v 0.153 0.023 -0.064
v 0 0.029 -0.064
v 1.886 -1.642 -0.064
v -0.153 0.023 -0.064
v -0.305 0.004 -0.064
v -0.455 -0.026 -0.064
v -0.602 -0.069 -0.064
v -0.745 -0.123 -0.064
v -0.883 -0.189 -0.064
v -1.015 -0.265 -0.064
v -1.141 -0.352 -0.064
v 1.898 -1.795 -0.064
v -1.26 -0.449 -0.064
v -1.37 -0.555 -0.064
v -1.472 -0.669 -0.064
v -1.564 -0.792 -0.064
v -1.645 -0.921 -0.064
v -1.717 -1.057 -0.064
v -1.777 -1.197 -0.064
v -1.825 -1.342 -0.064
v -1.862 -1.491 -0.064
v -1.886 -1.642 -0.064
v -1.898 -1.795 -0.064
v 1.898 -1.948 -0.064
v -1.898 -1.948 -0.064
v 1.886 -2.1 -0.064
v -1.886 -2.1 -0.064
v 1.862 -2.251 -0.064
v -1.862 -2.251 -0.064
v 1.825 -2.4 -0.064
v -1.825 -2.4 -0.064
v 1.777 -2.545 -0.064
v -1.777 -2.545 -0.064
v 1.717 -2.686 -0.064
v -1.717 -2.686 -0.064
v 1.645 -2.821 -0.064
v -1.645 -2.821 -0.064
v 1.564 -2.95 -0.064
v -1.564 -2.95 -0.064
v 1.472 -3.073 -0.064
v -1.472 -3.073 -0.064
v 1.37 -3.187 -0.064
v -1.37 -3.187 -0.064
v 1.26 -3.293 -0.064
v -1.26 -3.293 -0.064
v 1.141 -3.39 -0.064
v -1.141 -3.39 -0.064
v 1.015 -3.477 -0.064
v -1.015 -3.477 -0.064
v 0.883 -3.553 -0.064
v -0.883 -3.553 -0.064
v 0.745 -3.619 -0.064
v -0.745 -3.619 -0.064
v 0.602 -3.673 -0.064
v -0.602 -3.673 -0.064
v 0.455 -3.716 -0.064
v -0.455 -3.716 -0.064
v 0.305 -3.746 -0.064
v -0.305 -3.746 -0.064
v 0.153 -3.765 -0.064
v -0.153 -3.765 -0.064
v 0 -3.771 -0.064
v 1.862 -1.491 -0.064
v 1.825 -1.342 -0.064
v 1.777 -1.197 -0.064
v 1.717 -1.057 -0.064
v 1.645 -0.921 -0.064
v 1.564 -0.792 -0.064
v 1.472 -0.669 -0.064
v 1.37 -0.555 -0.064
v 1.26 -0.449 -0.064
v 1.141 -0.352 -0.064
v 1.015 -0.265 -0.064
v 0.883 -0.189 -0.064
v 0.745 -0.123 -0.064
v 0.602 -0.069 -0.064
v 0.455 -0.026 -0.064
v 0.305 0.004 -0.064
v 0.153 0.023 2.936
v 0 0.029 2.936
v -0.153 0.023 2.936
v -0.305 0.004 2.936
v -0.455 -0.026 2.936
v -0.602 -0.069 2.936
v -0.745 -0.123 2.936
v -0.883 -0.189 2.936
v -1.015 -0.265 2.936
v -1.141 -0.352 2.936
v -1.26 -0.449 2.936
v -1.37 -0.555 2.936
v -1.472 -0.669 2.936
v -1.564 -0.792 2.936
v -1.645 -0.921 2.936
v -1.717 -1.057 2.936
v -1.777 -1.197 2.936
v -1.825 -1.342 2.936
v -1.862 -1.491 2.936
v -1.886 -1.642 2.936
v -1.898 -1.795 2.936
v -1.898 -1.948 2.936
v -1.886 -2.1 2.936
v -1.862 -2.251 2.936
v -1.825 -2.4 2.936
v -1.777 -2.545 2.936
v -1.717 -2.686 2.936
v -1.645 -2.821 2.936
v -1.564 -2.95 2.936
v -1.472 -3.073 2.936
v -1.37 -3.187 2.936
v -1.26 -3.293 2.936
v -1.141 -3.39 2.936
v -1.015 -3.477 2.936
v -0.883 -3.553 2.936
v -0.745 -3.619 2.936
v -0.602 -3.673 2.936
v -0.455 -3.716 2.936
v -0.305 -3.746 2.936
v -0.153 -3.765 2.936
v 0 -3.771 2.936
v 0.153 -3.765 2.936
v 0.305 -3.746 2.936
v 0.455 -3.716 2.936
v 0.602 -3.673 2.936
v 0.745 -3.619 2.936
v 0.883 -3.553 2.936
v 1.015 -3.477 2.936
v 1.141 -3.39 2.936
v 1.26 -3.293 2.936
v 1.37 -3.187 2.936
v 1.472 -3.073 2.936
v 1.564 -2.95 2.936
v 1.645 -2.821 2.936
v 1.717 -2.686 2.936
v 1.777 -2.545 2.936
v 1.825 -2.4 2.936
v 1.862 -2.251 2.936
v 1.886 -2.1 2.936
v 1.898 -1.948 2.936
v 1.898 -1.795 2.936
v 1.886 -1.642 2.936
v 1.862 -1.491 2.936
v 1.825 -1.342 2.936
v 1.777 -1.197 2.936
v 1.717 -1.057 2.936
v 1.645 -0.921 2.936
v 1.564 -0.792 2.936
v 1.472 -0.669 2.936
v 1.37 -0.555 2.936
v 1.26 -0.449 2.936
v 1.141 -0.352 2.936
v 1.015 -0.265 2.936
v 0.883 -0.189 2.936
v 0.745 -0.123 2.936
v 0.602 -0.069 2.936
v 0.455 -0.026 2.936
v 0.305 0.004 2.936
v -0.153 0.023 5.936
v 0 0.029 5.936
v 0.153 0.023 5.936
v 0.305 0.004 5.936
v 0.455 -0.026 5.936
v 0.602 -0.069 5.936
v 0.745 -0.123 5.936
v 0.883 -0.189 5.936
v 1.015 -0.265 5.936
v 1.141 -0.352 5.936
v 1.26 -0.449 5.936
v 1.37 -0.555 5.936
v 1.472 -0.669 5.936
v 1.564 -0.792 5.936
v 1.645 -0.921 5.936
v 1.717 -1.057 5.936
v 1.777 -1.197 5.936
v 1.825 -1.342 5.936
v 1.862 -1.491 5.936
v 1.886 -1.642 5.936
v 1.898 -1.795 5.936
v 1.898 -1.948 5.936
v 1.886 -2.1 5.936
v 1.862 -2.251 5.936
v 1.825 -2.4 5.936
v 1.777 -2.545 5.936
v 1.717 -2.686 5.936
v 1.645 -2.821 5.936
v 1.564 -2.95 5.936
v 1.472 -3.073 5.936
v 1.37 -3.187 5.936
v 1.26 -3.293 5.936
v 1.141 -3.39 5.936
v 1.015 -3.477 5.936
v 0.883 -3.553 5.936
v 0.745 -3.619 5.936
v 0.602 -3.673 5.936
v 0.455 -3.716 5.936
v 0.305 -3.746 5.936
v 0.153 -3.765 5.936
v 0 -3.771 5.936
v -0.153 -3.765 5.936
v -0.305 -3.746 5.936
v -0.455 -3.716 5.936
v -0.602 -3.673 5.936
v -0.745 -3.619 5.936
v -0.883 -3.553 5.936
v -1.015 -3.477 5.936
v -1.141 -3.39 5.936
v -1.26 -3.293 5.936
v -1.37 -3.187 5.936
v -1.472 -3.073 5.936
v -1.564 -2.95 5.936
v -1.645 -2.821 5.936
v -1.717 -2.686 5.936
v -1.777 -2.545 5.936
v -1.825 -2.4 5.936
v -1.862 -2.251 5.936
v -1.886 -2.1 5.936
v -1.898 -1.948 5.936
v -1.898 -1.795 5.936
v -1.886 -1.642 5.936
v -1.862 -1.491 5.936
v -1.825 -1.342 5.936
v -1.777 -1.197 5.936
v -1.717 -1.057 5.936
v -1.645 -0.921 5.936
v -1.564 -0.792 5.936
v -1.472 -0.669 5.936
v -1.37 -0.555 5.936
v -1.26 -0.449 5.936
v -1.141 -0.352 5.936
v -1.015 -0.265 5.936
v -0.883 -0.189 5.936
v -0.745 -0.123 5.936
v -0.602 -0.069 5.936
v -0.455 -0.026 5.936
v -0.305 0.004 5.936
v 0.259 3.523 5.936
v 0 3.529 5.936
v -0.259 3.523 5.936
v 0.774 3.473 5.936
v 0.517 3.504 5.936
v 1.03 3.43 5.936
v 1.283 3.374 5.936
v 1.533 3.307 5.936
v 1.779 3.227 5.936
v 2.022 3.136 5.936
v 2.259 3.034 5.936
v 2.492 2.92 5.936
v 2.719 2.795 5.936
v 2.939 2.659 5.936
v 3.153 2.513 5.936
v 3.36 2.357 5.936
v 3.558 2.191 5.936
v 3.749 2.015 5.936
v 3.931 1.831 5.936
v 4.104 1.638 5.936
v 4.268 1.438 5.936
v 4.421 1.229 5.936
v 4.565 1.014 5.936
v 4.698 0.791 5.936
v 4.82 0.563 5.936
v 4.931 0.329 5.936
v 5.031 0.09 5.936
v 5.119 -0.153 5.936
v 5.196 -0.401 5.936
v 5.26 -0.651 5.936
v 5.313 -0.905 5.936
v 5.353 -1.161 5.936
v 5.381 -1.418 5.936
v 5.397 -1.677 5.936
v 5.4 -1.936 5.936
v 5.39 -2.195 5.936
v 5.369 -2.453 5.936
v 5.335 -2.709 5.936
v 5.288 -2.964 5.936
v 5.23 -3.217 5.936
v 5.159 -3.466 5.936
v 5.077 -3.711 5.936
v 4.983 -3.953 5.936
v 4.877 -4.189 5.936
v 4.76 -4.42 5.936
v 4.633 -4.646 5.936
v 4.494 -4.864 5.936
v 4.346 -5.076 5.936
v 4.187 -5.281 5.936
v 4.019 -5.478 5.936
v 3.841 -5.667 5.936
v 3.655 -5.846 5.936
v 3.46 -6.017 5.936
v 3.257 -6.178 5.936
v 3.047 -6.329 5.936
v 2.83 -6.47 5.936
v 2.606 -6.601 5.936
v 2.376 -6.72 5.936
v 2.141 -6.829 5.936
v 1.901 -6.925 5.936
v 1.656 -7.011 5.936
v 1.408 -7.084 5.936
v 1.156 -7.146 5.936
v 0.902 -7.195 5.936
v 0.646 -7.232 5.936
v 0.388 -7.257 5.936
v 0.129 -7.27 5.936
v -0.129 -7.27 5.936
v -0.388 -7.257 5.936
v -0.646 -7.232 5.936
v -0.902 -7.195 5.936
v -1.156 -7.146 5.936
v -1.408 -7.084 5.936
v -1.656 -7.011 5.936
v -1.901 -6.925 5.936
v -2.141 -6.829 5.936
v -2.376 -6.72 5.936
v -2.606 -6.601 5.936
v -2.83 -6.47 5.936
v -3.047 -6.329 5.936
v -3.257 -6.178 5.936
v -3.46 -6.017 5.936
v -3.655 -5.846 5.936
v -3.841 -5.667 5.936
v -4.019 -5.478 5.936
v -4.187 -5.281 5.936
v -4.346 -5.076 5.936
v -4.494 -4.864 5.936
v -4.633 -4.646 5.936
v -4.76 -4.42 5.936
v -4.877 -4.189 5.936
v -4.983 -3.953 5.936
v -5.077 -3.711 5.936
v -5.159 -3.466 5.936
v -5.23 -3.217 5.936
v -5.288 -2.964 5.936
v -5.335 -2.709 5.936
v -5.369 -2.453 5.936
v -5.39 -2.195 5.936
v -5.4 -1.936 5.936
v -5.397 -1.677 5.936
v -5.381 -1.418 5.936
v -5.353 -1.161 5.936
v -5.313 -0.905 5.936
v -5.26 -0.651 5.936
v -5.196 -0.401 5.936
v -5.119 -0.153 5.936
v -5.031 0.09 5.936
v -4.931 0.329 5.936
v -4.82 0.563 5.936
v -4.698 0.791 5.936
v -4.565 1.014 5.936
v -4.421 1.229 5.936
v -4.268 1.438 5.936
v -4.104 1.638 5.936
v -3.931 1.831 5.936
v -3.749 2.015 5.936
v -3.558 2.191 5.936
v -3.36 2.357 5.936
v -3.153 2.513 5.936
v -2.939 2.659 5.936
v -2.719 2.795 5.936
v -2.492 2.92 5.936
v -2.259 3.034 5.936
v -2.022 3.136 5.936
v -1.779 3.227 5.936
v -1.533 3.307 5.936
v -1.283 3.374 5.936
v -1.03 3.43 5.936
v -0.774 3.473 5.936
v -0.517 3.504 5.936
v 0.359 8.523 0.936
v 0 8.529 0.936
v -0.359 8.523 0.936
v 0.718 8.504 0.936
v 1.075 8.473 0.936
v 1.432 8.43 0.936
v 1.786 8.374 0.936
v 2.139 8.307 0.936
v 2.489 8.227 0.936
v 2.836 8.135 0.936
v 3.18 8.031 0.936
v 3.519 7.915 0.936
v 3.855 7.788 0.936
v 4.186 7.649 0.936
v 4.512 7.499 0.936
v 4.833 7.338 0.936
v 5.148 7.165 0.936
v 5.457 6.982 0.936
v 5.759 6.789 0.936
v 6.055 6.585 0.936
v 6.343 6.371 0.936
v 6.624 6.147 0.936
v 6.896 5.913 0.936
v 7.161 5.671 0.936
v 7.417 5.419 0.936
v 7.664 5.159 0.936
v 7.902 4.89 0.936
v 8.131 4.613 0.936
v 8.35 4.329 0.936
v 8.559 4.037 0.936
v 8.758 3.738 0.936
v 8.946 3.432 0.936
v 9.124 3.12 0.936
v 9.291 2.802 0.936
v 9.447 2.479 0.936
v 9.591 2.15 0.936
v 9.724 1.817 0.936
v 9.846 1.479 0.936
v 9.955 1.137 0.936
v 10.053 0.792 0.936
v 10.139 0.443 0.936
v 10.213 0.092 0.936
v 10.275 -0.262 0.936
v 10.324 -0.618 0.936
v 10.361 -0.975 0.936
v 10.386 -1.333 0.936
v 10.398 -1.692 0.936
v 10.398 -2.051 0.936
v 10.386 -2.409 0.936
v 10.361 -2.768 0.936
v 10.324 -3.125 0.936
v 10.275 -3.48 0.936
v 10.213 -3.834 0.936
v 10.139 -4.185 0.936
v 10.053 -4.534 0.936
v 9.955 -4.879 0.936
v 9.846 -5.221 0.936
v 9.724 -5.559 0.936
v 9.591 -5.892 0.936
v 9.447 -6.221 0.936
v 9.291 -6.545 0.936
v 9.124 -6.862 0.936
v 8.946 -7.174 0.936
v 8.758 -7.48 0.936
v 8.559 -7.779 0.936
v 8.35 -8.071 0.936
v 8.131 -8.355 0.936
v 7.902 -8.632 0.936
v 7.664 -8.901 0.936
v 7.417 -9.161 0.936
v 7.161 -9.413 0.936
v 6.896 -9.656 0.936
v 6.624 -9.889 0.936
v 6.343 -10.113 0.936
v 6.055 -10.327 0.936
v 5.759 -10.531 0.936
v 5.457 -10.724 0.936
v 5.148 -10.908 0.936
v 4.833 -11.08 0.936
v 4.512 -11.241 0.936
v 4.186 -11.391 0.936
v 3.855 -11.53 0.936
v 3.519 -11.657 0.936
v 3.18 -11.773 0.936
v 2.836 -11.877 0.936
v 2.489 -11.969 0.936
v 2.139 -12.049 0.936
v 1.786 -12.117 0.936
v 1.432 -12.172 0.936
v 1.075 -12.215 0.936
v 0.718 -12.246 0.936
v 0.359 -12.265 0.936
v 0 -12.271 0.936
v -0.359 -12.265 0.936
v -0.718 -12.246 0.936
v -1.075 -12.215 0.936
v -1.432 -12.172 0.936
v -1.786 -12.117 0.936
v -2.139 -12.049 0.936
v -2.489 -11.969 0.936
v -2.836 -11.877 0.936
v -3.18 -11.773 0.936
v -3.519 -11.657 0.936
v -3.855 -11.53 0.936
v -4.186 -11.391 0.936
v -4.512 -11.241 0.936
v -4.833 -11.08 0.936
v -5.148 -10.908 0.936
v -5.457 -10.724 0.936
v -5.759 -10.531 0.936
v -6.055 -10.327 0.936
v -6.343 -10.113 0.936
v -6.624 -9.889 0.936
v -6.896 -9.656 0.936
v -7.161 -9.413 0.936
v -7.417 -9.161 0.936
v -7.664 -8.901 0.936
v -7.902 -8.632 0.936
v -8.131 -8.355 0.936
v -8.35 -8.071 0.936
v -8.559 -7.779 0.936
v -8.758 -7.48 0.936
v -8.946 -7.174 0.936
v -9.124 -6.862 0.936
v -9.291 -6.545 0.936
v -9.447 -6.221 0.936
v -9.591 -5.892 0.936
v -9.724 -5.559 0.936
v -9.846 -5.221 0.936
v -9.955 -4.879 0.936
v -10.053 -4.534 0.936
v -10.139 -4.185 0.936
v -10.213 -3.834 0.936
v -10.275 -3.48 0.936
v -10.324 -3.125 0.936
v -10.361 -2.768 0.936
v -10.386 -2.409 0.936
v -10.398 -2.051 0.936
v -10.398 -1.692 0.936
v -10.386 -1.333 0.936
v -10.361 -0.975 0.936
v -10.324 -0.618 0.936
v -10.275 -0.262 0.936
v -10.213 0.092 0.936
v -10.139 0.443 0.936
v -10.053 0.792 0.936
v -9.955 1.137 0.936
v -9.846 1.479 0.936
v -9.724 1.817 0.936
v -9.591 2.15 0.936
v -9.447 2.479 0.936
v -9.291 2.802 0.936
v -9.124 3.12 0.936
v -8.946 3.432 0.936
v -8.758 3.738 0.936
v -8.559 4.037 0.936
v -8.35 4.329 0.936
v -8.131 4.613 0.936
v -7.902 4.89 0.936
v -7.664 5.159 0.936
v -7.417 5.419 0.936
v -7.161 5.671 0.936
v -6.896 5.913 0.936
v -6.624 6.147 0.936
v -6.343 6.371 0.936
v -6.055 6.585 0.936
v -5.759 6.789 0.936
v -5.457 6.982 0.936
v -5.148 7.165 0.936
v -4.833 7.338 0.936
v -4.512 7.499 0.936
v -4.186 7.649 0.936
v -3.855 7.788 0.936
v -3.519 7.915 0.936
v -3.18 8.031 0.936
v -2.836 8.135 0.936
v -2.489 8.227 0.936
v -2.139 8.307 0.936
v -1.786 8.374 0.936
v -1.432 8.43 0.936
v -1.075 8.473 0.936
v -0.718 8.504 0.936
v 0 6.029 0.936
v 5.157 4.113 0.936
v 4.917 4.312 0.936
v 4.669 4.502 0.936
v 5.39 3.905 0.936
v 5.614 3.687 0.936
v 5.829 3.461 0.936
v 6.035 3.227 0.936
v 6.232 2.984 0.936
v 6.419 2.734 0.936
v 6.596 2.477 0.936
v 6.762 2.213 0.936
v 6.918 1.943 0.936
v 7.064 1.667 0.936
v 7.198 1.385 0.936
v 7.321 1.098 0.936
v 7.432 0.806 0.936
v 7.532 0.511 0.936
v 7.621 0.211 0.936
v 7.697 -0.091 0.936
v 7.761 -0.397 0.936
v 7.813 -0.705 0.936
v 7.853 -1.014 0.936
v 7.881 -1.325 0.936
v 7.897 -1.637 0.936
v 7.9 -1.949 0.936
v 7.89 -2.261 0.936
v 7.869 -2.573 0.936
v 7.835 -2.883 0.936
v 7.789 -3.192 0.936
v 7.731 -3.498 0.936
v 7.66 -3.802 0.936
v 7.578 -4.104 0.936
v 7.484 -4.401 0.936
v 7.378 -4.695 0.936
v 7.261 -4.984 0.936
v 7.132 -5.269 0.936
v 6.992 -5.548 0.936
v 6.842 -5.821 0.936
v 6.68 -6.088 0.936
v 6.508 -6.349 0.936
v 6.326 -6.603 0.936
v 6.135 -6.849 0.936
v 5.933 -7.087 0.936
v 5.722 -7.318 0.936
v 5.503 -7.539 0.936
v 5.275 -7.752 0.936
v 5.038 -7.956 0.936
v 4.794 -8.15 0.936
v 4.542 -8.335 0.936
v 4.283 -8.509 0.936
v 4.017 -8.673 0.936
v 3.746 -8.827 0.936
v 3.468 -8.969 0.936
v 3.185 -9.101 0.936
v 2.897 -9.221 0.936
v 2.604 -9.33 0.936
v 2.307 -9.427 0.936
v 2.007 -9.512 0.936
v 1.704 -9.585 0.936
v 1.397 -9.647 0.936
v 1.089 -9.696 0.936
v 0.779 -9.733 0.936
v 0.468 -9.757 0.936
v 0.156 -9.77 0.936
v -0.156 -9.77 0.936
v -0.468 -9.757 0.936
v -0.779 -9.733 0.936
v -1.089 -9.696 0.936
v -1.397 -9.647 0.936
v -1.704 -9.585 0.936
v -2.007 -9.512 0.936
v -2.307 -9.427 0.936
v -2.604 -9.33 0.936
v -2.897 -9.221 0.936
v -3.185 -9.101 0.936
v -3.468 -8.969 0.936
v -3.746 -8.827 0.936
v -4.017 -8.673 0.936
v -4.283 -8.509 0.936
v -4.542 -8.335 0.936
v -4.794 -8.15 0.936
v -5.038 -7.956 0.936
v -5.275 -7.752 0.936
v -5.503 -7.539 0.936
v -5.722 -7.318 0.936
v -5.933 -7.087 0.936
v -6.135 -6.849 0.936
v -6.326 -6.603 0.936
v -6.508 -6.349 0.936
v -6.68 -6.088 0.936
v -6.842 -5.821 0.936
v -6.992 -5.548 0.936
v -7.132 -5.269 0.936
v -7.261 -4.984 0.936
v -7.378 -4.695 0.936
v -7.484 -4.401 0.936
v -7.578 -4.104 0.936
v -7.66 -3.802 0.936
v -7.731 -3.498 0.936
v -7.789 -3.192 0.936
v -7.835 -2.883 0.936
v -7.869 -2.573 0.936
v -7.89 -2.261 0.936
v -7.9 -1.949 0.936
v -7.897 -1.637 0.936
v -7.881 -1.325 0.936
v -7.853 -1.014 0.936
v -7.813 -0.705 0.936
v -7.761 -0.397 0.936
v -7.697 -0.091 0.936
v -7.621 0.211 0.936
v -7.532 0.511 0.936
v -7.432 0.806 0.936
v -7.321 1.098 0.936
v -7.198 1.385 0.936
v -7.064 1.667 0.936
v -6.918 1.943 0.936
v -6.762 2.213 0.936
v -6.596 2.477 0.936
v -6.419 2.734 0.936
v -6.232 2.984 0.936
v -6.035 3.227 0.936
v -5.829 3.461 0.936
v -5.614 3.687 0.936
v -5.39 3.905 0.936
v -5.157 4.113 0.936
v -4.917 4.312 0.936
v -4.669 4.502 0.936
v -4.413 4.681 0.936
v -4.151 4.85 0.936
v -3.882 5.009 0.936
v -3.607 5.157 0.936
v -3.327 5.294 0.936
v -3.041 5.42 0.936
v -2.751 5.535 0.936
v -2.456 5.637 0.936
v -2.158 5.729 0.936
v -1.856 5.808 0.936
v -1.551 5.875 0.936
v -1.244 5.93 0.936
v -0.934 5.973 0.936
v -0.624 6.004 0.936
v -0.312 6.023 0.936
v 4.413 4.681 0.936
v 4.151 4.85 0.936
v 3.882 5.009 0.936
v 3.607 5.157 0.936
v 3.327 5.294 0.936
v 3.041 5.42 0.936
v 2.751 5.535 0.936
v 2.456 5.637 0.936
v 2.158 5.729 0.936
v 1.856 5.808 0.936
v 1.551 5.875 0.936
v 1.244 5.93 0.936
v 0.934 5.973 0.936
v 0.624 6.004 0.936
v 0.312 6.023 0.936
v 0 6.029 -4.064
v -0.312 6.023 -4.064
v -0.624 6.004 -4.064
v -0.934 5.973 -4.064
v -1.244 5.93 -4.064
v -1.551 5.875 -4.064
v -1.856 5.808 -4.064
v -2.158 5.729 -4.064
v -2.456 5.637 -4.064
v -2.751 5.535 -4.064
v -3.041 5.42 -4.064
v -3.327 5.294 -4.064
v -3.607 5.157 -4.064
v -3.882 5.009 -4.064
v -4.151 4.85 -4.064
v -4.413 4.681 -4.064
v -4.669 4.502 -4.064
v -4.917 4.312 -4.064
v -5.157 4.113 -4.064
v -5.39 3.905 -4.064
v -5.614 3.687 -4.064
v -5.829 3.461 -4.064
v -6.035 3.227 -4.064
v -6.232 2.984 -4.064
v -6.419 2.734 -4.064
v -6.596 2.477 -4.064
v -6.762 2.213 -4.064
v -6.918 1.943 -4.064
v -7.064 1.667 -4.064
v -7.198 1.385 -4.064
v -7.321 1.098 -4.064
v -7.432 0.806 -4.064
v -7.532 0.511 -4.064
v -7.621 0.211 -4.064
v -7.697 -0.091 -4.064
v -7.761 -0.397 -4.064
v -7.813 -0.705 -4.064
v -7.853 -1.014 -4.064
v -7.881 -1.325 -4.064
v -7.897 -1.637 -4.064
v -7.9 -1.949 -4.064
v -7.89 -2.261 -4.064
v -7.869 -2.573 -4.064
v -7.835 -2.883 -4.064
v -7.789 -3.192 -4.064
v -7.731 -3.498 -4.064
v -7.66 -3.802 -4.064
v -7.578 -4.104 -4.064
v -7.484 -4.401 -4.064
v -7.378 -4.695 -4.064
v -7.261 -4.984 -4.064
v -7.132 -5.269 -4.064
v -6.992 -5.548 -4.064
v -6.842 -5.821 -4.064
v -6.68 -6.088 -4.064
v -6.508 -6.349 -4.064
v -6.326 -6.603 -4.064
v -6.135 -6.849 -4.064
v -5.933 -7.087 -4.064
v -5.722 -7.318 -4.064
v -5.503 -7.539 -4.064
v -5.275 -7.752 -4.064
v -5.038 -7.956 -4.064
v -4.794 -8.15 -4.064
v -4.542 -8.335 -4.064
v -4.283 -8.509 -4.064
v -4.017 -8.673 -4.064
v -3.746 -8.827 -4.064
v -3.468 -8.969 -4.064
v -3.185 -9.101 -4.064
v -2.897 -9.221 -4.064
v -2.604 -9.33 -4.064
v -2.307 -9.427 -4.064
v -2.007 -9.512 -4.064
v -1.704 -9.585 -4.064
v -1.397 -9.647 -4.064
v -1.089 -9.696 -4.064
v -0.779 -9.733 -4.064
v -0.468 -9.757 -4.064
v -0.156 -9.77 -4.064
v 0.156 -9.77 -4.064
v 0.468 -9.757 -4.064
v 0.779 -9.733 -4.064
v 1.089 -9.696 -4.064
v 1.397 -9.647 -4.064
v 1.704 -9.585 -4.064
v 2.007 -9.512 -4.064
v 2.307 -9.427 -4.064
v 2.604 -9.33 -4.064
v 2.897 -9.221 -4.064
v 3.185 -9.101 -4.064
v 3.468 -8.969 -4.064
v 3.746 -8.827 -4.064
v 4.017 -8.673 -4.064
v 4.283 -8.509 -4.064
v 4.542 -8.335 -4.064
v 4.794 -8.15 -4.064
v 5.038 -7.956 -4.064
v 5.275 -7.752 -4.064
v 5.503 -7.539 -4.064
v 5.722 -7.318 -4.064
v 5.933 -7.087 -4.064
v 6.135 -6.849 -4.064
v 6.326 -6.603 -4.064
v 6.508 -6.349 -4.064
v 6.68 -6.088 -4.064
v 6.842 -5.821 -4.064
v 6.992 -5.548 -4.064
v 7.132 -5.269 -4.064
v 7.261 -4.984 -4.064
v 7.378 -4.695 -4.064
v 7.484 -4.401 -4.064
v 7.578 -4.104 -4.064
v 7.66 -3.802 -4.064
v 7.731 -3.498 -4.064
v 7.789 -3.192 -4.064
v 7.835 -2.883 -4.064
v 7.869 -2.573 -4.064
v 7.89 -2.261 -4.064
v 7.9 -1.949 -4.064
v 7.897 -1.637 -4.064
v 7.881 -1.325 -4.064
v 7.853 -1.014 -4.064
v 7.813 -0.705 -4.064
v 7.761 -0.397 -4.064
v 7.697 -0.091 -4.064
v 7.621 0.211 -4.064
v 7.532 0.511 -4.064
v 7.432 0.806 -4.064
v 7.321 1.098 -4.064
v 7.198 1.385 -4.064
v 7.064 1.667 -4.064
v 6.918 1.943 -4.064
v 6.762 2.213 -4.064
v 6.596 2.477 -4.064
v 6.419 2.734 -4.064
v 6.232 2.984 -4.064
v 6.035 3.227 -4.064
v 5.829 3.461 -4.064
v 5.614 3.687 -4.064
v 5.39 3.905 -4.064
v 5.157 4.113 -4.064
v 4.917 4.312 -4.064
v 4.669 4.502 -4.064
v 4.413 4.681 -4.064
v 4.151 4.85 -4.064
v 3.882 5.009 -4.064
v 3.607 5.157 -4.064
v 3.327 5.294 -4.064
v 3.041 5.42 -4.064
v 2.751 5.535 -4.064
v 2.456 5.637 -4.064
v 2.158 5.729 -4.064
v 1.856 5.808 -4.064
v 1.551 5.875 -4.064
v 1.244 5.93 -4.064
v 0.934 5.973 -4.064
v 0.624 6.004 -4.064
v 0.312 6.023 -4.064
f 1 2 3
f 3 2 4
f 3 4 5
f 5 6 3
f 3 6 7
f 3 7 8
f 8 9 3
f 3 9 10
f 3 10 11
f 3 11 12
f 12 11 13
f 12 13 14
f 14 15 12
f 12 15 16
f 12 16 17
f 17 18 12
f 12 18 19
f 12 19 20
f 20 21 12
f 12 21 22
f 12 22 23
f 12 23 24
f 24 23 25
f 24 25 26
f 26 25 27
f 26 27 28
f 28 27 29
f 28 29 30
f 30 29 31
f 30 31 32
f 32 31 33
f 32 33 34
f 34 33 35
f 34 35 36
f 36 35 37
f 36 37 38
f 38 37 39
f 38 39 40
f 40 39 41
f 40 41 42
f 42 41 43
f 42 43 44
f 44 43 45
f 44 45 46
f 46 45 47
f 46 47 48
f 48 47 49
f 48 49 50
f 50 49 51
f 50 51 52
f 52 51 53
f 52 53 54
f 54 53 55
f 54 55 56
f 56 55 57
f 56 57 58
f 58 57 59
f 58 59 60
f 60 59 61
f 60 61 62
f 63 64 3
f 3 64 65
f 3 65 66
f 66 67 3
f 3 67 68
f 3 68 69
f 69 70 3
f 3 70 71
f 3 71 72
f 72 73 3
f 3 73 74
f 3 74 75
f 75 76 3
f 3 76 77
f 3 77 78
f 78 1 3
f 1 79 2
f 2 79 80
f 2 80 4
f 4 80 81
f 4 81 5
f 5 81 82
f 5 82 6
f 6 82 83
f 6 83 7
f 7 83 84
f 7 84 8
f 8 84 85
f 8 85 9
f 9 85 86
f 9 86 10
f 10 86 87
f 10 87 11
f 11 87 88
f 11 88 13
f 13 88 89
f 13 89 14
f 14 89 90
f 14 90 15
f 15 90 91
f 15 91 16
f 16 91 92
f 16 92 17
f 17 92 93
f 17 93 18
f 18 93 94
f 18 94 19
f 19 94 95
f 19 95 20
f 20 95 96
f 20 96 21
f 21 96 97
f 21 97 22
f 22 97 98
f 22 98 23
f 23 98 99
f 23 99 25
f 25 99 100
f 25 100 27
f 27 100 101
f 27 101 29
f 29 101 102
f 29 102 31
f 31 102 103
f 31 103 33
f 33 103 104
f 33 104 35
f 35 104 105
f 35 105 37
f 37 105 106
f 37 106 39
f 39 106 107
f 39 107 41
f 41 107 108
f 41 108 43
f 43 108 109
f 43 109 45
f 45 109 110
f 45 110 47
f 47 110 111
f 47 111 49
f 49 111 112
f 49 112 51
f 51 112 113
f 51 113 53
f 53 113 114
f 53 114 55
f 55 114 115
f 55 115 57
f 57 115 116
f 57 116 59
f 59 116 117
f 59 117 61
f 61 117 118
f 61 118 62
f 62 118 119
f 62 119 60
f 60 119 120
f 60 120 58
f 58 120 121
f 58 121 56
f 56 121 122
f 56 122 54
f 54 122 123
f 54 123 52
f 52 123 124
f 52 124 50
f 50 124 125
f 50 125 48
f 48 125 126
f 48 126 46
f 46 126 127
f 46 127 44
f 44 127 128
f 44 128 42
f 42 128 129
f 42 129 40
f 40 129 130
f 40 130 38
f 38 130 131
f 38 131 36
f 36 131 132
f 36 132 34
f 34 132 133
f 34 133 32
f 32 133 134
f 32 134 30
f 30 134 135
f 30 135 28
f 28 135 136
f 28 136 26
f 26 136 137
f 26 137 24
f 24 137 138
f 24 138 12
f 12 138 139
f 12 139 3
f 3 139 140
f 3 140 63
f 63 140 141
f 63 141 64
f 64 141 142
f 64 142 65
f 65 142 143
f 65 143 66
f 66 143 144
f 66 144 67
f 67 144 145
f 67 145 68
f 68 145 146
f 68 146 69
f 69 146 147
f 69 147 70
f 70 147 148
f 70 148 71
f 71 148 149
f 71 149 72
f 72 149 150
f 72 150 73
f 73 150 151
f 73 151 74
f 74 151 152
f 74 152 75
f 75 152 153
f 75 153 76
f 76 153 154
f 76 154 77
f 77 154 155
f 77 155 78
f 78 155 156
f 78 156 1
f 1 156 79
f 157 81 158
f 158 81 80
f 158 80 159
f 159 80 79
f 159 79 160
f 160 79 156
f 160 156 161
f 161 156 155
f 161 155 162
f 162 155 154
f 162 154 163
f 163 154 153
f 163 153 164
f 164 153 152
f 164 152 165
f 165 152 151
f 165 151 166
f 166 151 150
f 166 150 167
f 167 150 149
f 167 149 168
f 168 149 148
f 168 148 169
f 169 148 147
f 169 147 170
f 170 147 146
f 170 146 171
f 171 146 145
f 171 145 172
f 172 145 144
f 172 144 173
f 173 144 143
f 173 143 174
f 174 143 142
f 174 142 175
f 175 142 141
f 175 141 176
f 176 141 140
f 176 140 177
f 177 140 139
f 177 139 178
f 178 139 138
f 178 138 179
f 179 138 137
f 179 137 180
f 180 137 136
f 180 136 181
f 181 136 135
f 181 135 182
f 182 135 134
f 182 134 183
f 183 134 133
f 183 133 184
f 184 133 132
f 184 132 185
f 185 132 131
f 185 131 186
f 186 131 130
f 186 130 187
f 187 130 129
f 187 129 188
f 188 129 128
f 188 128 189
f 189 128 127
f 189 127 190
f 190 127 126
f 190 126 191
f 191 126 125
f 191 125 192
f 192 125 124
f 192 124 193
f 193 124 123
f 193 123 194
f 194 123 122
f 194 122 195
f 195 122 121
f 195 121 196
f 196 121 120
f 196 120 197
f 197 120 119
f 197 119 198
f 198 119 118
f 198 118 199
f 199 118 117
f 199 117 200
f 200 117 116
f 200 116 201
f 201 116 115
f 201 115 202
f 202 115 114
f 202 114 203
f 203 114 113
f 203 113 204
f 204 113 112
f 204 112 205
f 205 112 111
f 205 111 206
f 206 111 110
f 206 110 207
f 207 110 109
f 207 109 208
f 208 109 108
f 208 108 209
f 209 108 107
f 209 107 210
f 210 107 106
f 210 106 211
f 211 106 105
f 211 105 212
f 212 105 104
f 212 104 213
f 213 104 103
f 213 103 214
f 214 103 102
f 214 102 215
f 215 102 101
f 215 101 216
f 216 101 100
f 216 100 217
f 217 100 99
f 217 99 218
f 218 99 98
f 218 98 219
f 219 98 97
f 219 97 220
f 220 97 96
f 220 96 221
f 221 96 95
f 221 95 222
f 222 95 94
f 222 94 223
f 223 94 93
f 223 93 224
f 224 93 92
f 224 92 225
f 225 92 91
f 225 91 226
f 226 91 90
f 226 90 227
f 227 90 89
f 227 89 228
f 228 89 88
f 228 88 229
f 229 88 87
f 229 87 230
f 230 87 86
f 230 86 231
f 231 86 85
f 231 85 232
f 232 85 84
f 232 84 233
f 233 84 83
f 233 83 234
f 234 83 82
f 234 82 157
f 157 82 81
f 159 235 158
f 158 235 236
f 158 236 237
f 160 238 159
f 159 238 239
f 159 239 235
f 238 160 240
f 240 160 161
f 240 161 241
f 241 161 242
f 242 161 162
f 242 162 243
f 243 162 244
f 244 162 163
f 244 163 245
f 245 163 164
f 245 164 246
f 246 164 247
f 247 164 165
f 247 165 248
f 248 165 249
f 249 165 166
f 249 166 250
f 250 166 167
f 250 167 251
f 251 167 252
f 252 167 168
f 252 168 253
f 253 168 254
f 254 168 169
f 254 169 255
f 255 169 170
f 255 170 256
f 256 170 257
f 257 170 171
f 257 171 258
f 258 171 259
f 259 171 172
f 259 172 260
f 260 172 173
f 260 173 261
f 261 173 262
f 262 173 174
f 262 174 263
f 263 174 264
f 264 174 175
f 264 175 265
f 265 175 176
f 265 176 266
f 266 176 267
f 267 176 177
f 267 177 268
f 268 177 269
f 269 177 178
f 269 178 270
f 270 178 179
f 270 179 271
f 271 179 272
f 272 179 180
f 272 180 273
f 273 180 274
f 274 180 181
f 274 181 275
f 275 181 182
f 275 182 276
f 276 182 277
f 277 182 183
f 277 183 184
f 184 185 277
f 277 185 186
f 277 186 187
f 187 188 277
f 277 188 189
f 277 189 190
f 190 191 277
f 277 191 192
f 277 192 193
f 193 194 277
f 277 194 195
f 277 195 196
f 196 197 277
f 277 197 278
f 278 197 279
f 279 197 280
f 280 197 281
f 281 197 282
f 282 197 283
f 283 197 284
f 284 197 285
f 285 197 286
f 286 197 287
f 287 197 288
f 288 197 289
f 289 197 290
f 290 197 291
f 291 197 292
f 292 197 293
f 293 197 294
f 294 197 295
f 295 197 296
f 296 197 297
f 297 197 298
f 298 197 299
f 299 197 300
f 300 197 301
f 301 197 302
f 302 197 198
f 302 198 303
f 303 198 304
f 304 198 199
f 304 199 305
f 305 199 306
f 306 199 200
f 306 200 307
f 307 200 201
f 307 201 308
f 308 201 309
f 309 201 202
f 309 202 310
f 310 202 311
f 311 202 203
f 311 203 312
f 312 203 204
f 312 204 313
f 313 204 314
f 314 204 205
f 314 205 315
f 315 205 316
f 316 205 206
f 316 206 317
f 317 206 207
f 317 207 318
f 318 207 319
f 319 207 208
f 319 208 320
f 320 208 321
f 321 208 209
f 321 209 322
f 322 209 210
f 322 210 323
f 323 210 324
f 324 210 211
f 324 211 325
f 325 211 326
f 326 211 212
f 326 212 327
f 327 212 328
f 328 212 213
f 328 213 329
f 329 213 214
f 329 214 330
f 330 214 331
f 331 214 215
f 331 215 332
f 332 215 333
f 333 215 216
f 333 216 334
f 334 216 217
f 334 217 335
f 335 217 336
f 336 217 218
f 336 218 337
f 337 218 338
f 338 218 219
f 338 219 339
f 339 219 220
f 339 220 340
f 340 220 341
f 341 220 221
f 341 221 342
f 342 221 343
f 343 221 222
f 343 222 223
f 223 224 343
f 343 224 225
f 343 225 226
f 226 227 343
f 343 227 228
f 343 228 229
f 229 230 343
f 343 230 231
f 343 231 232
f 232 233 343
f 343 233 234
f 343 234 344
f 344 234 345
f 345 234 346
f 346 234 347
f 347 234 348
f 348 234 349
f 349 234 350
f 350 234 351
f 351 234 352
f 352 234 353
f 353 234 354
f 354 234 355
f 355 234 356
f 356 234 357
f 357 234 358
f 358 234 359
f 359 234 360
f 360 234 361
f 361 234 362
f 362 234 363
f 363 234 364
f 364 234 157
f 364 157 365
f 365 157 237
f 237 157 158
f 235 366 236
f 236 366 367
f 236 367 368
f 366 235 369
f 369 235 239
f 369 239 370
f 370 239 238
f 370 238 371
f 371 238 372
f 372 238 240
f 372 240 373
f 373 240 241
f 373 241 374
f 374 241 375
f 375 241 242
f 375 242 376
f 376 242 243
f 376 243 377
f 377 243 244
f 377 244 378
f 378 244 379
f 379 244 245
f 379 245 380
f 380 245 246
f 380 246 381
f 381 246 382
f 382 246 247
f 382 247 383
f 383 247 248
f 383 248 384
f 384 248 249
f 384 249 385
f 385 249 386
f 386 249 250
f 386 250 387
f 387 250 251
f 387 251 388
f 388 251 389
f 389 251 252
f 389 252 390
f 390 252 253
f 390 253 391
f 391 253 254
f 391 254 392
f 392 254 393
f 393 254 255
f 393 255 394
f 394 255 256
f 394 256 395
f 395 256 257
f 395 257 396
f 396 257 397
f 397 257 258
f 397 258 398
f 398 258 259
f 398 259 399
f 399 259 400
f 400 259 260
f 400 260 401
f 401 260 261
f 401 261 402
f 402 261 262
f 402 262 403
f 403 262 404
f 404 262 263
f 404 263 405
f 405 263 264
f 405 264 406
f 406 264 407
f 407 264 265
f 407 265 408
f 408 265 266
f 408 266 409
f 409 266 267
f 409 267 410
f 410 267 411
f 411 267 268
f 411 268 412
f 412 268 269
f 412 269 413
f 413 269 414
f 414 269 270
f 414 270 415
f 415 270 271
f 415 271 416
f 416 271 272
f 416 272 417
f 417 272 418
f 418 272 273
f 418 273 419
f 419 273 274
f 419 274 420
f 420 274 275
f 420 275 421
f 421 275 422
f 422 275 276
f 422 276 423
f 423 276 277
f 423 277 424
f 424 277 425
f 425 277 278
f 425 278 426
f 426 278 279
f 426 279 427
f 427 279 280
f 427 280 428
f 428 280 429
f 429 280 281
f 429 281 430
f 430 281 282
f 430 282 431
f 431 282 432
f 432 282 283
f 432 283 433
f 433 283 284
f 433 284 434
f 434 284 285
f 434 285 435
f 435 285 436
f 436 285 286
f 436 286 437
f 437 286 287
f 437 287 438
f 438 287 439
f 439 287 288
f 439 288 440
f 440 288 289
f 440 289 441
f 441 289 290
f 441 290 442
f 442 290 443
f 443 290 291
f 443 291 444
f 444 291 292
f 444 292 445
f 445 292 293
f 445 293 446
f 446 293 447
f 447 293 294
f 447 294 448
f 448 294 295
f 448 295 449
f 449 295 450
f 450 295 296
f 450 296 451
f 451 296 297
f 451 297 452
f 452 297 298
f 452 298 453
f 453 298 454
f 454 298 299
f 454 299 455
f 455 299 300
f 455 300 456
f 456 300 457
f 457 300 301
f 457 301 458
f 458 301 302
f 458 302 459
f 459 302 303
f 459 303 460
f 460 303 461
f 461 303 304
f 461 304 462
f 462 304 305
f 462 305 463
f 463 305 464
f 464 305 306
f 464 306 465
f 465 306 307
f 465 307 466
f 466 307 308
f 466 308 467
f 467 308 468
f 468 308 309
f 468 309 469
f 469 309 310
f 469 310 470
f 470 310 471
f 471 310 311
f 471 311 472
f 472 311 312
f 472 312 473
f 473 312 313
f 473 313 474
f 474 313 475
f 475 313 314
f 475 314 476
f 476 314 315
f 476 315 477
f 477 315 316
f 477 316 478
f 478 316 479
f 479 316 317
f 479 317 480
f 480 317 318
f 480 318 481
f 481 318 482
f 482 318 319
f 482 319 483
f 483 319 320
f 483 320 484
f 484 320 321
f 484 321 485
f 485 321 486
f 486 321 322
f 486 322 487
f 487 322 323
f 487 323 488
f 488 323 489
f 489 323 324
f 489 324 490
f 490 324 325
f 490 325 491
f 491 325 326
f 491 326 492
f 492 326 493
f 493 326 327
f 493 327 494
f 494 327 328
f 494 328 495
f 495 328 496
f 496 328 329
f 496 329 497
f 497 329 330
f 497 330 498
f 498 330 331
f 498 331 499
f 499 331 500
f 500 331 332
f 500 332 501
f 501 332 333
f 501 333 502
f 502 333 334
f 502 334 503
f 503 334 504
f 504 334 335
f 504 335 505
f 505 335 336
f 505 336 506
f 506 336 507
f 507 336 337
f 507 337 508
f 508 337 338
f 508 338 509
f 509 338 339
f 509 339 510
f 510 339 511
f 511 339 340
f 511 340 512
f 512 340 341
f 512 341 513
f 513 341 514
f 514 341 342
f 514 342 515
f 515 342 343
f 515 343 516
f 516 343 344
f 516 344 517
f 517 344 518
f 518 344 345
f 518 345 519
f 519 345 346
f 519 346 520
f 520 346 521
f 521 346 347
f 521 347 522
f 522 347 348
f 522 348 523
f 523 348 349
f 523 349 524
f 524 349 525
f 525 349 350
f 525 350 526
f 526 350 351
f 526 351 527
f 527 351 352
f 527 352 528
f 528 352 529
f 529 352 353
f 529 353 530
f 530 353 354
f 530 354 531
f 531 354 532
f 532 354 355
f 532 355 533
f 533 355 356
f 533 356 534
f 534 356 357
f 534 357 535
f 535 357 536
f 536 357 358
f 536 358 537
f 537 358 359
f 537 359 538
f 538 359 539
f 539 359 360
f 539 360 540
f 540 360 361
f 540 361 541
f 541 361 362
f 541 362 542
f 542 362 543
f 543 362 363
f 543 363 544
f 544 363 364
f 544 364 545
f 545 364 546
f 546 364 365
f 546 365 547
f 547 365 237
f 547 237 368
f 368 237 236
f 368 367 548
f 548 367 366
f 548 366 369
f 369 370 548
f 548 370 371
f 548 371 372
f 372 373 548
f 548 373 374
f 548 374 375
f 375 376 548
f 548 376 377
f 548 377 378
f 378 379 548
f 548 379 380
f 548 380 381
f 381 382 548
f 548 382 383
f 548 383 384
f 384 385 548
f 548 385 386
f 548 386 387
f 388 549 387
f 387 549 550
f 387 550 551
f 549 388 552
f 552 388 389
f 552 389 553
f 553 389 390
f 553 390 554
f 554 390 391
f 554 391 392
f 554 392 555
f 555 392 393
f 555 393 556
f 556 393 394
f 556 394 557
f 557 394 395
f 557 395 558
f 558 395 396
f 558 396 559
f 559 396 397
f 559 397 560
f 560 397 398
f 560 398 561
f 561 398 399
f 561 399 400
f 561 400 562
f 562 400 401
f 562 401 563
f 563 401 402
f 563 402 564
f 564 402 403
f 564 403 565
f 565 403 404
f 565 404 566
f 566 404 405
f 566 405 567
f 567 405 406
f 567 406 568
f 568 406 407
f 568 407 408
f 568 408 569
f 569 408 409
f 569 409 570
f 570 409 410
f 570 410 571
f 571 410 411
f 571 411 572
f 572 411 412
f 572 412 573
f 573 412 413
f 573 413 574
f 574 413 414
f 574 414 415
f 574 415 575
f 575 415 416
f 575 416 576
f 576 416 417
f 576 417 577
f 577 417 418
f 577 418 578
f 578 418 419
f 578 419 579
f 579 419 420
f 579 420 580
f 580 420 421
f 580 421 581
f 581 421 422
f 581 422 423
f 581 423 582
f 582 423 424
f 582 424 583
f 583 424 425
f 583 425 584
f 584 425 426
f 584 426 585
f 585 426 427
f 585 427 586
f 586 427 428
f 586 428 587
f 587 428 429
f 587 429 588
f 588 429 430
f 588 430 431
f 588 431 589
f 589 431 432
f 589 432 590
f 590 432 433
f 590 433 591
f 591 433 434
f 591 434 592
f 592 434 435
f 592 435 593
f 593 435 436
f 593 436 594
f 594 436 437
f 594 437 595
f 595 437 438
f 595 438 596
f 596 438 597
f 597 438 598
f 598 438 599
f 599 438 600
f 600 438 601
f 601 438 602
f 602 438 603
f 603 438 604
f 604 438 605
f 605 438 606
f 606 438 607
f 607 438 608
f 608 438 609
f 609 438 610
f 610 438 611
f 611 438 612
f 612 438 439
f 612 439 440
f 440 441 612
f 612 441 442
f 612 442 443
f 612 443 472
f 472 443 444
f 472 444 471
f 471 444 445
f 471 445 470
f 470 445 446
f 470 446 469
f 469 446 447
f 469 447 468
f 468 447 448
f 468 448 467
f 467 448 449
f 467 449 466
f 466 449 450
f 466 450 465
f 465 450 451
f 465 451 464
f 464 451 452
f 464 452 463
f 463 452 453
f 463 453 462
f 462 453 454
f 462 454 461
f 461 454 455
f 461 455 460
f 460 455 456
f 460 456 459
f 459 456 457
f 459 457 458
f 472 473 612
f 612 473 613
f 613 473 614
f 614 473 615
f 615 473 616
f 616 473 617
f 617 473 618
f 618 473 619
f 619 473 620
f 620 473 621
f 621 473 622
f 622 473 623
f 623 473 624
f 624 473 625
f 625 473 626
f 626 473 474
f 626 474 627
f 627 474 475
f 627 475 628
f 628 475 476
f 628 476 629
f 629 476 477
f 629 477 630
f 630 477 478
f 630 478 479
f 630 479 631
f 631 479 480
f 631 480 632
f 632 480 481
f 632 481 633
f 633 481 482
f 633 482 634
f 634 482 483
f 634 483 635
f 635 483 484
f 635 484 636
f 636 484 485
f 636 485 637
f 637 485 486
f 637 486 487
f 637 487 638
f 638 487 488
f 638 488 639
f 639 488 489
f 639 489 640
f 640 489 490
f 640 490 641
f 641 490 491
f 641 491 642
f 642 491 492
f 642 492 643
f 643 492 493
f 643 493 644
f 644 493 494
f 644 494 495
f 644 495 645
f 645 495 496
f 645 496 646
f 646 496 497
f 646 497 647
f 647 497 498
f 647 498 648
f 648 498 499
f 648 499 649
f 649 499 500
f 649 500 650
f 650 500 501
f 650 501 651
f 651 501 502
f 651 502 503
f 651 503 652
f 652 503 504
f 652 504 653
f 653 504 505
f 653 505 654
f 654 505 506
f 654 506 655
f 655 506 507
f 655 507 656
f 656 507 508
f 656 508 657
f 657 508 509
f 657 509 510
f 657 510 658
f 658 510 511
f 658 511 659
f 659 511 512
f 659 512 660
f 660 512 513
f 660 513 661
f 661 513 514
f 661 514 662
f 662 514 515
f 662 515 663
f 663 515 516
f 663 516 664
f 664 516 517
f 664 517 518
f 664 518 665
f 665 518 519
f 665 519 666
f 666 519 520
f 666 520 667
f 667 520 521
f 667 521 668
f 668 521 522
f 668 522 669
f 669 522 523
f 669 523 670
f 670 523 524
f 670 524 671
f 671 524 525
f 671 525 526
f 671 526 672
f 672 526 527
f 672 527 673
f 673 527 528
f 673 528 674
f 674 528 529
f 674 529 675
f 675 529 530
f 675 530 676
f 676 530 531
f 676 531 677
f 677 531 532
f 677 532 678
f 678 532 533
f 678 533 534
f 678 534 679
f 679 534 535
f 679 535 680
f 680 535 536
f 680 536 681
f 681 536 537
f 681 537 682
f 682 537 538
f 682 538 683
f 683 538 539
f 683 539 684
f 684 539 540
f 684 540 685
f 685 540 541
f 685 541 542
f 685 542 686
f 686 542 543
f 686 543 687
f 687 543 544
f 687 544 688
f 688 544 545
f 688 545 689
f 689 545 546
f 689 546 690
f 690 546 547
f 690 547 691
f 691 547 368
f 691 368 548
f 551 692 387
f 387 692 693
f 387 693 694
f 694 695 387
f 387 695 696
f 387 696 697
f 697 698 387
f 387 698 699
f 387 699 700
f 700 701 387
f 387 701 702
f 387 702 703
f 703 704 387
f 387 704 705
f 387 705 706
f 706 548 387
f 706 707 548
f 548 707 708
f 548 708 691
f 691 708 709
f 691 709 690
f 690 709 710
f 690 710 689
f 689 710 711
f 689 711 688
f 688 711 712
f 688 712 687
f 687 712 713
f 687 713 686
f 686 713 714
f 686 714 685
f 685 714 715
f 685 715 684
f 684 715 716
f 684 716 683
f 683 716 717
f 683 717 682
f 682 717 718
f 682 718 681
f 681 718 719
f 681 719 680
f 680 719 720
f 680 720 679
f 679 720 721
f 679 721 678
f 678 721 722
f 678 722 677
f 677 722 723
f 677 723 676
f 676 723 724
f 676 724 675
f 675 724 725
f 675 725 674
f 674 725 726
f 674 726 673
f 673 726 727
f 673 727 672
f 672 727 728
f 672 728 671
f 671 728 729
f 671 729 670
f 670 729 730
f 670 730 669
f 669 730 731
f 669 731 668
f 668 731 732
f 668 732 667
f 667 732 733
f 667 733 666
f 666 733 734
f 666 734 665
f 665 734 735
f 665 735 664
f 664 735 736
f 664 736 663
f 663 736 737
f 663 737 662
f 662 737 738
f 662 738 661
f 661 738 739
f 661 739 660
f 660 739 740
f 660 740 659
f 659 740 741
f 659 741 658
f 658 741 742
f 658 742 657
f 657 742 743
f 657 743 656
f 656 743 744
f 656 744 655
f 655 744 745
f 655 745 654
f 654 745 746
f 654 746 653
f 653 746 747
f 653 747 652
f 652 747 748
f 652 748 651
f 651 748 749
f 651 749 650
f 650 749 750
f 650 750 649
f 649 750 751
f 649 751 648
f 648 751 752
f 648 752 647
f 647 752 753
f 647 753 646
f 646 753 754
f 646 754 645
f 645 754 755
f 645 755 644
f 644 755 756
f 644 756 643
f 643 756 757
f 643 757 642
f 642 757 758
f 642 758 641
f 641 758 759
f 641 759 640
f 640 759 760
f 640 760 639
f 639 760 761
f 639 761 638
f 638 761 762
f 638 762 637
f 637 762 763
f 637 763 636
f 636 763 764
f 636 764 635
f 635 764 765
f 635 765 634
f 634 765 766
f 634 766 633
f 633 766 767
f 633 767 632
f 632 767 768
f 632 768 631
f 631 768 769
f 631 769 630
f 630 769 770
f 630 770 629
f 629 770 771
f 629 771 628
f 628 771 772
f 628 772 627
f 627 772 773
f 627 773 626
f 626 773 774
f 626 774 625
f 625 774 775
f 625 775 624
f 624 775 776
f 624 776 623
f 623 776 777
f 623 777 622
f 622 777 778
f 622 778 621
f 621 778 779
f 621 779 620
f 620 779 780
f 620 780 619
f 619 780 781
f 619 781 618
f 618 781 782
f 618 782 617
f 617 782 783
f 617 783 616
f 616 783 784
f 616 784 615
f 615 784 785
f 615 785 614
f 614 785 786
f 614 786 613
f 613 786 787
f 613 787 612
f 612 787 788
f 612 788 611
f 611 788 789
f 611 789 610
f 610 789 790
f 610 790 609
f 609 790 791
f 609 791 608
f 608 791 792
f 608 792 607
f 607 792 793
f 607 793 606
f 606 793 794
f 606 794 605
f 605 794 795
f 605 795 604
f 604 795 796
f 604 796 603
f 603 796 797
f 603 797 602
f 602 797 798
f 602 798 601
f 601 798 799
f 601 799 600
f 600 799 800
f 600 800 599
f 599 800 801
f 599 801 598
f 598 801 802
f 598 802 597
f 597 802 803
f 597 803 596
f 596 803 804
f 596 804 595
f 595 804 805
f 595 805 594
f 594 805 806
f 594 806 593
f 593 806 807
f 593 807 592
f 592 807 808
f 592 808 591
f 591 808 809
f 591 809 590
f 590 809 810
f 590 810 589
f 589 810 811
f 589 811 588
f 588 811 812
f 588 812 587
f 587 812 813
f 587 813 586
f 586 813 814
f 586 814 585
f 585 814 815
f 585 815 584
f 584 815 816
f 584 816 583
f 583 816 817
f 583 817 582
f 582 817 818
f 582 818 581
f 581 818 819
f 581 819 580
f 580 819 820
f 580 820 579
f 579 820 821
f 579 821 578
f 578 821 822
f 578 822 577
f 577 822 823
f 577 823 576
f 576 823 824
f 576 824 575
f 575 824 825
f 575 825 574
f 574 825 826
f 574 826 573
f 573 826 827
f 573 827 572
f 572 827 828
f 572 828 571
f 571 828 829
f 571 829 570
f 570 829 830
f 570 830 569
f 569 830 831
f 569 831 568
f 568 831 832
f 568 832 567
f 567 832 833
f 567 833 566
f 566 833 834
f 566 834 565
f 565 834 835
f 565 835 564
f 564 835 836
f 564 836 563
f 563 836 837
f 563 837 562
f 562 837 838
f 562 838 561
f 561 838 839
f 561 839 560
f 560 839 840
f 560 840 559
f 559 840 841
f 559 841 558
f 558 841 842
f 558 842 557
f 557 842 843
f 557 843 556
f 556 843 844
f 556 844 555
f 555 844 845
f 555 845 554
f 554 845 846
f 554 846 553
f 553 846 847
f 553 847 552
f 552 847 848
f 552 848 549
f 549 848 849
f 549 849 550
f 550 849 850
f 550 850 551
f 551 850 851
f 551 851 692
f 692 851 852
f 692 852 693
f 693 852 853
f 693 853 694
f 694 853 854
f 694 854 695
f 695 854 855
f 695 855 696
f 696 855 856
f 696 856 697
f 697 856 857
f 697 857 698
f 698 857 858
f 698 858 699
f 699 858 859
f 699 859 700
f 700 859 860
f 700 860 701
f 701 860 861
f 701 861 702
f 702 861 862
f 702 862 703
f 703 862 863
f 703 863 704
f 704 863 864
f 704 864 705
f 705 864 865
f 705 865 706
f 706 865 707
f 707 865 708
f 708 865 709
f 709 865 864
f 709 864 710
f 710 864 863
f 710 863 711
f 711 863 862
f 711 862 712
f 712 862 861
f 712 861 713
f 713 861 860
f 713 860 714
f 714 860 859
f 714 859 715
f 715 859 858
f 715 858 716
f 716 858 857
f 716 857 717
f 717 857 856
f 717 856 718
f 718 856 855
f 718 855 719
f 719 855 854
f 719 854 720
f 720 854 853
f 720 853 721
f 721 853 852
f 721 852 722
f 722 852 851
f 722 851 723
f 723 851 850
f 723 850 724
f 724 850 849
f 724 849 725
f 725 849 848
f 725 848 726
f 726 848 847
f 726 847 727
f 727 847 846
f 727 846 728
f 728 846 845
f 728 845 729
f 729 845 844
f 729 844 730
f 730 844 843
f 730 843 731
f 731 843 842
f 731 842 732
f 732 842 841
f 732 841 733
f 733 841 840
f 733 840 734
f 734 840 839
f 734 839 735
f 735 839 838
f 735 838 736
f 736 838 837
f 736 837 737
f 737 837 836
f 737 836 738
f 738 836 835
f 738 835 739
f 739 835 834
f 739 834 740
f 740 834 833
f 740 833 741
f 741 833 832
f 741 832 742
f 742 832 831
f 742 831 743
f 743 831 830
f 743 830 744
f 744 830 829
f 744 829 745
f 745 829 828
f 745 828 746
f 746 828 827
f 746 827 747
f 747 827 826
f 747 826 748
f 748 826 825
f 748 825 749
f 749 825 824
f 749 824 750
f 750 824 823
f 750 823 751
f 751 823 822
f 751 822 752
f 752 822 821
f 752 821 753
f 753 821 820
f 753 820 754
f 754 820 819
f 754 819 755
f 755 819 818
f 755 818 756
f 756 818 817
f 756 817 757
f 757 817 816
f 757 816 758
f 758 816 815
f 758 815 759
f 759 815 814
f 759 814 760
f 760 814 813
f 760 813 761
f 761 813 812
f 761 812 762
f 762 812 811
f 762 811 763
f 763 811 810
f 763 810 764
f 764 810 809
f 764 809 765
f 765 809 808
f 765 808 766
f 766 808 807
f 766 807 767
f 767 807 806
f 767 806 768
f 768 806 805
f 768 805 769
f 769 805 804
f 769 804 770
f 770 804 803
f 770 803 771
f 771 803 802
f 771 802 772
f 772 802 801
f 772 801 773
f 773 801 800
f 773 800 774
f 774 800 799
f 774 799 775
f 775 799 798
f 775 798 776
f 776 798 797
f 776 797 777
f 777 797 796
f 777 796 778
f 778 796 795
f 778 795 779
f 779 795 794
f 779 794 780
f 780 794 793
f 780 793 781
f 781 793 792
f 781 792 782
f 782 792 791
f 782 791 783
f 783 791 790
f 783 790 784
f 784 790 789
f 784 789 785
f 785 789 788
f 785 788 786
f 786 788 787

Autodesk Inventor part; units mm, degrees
ref_plane "YZ Plane" through (0, 0, 0) normal (1, 0, 0) x (0, 1, 0)
ref_plane "XY Plane" through (0, 0, 0) normal (0, 0, 1) x (1, 0, 0)
sketch "Sketch1" plane through (0, 0, 0) normal (1, 0, 0) x (0, 1, 0)
  line L0 (0.0289, 5.9359) -> (3.5289, 5.9359)
  line L1 (-1.8711, 5.9359) -> (-1.8711, -4.0641) construction
  line L2 (6.0289, 0.9359) -> (8.5289, 0.9359)
  line L3 (3.5289, 5.9359) -> (8.5289, 0.9359)
  line L4 (0.0289, -4.0641) -> (6.0289, -4.0641)
  line L5 (6.0289, -4.0641) -> (6.0289, 0.9359)
  line L6 (0.0289, 5.9359) -> (0.0289, -0.0641)
  line L7 (0.0289, -0.0641) -> (-1.8711, -0.0641)
  line L8 (-1.8711, -4.0641) -> (0.0289, -4.0641)
  line L9 (-1.8711, -0.0641) -> (-1.8711, -4.0641)
  point P0 (0, 0)
  dimension "d0" = 3.5
  dimension "d3" = 10
  dimension "d11" = 6
revolve "Revolution1" add sketch "Sketch1" angle 360 about axis through (0, -1.8711, 5.9359) along (0, 0, -1)
ref_plane "Work Plane1" through (0, 6.0289, -1.5641) normal (0, 1, 0) x (-1, 0, 0)
properties part number "guide"
